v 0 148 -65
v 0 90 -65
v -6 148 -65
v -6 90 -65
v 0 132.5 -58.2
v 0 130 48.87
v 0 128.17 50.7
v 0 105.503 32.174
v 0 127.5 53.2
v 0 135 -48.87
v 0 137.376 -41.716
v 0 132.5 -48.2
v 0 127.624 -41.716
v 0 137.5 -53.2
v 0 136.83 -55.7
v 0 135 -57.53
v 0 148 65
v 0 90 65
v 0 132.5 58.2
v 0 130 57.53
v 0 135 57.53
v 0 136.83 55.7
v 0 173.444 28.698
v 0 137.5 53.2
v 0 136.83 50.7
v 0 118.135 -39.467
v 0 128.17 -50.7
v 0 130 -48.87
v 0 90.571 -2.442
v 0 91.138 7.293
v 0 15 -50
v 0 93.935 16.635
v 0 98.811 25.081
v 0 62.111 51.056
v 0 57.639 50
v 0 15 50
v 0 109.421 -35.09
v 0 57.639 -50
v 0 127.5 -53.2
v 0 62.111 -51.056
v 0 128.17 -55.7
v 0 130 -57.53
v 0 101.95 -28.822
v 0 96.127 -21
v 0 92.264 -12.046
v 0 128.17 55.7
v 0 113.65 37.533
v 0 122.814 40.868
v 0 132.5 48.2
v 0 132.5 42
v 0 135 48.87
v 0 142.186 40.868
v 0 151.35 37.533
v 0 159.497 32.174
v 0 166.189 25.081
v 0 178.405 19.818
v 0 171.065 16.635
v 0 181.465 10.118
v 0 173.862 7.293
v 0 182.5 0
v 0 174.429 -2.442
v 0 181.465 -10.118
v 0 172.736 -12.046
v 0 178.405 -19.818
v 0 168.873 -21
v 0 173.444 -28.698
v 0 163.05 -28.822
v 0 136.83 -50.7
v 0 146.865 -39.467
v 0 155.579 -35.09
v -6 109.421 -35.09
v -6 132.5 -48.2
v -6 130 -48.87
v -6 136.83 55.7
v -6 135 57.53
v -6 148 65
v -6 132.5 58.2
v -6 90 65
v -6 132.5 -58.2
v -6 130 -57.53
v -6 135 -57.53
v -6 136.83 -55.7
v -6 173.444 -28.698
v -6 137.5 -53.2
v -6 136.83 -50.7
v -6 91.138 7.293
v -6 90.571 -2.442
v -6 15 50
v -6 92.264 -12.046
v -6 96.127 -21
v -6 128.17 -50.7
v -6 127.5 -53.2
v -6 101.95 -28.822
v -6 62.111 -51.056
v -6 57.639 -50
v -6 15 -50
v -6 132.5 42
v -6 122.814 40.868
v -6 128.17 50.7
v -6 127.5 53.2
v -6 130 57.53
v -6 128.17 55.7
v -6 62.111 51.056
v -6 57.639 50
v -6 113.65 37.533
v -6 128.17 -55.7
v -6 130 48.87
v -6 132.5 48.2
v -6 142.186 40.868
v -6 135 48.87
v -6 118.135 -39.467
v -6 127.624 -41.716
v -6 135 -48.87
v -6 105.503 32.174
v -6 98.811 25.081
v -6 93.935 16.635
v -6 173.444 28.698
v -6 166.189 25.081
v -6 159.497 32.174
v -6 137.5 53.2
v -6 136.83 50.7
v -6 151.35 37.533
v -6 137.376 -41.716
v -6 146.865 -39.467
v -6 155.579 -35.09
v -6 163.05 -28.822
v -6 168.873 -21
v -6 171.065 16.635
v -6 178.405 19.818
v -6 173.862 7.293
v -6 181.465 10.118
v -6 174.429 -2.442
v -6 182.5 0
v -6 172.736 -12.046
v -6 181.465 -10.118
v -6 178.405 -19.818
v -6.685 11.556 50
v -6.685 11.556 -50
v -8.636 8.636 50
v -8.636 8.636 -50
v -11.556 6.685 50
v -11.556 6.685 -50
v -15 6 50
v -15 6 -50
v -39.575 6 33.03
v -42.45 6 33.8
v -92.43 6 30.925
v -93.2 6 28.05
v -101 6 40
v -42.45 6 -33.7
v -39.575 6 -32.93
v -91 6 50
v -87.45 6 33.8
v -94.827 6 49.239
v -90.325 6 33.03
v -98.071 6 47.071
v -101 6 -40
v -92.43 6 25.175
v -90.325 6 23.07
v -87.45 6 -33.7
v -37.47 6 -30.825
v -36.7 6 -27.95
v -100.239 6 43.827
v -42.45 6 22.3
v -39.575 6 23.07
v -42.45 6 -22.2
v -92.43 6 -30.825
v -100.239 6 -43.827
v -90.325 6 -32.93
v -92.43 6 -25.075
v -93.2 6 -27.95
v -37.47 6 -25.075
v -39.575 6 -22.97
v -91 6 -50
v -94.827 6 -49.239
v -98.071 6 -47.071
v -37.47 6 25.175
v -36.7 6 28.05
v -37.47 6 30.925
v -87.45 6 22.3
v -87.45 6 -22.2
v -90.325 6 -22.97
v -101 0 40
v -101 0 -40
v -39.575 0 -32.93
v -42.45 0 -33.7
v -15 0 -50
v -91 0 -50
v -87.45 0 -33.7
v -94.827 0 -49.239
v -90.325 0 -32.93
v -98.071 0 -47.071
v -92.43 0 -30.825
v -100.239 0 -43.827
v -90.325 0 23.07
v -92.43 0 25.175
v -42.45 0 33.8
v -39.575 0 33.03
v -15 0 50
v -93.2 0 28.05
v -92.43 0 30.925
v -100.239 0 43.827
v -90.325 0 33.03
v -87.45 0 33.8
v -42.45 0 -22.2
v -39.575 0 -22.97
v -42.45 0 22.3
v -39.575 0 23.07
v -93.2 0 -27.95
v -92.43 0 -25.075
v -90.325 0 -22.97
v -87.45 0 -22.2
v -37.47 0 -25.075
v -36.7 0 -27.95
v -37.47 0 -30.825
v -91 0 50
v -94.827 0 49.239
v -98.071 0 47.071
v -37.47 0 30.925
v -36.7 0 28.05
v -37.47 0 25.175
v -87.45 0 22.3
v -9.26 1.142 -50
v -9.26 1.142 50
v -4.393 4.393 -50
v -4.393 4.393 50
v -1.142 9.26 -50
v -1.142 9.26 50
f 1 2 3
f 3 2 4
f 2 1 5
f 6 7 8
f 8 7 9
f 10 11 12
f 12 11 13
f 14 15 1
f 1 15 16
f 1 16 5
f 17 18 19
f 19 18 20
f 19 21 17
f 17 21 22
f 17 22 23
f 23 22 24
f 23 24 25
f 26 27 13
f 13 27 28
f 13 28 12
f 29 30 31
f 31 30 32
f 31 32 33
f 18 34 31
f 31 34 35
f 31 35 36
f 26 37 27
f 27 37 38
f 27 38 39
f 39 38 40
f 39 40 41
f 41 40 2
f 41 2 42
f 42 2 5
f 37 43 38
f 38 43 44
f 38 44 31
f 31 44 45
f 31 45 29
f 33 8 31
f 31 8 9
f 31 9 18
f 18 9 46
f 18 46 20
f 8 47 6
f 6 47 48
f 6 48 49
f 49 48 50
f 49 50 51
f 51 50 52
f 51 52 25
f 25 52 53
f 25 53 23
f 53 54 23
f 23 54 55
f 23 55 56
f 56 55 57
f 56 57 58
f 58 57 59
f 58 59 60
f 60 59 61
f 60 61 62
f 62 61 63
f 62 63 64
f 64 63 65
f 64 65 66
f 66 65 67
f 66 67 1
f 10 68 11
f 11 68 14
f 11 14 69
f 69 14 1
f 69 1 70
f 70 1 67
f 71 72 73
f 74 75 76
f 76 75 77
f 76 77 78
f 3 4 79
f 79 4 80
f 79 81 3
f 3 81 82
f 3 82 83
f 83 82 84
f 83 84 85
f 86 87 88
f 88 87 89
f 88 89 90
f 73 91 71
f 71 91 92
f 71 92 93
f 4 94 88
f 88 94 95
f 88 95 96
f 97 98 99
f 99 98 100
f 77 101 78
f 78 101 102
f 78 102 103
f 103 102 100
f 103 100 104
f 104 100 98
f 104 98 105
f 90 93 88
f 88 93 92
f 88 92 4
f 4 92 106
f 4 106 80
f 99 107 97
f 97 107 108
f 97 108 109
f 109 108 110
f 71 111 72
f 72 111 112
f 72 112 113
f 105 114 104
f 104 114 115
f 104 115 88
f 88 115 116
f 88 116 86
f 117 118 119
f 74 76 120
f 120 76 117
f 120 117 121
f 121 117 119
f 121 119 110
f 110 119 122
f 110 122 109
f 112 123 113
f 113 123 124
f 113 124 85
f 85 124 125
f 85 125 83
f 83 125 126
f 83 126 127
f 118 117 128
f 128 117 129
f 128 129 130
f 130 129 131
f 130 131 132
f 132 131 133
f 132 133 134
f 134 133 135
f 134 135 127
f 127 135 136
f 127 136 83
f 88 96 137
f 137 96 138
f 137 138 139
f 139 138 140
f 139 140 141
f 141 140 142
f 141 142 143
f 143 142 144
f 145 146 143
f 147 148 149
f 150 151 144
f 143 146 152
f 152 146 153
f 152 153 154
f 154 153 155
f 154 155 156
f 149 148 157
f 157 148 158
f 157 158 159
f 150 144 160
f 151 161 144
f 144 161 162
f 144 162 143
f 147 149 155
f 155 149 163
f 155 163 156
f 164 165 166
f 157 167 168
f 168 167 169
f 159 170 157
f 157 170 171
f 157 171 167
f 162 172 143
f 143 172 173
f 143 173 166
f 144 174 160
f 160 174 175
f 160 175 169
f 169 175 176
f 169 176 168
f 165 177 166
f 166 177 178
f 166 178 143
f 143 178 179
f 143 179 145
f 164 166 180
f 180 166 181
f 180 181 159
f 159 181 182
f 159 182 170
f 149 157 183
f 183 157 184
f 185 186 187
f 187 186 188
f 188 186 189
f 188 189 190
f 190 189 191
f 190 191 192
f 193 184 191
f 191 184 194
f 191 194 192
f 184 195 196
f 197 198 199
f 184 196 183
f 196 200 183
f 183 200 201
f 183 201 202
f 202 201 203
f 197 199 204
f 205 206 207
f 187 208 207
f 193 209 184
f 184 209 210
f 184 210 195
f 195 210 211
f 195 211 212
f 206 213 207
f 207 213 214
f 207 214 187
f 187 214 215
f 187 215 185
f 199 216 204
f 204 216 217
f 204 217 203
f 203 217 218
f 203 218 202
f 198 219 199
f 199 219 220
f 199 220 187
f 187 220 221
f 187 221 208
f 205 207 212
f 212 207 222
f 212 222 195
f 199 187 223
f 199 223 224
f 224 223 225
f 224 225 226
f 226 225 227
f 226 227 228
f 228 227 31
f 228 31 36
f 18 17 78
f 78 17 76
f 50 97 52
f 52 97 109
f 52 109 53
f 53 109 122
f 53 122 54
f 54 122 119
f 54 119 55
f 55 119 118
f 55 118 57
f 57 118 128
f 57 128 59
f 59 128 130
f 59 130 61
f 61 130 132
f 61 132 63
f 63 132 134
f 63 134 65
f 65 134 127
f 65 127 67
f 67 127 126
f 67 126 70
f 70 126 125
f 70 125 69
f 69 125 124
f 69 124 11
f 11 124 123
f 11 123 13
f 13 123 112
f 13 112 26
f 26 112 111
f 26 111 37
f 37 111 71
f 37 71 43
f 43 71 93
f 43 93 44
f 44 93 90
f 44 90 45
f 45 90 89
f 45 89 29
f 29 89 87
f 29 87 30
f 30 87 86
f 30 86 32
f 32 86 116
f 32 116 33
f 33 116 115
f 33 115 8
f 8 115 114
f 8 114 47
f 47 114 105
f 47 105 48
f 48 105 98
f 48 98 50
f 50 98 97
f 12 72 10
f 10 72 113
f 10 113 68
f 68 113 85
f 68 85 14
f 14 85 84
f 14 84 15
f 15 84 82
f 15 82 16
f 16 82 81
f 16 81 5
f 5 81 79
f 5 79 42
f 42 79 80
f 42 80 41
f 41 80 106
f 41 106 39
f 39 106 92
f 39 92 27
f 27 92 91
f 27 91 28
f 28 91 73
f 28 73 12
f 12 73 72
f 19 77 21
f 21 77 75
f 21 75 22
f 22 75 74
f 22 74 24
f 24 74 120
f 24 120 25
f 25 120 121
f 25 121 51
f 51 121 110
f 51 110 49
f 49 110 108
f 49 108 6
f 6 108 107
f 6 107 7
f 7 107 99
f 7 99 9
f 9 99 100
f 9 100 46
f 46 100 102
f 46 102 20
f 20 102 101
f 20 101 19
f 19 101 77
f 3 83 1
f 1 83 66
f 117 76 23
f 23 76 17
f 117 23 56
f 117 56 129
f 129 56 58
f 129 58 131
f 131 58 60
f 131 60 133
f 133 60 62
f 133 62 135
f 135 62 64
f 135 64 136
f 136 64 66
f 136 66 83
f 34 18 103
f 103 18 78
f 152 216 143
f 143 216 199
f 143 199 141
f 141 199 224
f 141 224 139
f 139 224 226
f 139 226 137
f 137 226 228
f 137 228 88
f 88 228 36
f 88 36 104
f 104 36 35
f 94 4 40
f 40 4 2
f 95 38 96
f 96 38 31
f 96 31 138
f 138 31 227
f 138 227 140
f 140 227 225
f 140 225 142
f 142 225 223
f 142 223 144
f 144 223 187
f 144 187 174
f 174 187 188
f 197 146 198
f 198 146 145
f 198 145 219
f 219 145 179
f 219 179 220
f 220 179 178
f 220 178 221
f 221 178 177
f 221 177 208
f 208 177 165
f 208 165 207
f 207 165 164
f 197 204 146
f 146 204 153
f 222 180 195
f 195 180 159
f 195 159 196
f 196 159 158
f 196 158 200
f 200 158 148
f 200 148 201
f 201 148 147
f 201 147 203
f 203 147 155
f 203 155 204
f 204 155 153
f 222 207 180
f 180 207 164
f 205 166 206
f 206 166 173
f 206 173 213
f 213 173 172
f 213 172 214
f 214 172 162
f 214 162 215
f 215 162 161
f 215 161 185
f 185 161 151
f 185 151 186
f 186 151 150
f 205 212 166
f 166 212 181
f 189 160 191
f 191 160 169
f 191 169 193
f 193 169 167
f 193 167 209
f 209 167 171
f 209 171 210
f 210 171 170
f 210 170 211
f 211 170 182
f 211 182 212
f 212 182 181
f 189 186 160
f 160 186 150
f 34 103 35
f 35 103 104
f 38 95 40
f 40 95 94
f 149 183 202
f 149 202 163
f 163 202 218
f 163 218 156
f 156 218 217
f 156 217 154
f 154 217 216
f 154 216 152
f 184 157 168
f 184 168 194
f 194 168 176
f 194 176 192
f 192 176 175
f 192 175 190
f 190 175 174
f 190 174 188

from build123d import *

# Parameters (mm, degrees)
BASE_FLANGE1_DEPTH      = 65
SKETCH6_R               = 42
SKETCH6_R_2             = 5
CUT_EXTRUDE1_DEPTH      = 10
CUT_EXTRUDE2_DEPTH      = 219.477115506
CUT_EXTRUDE2_DEPTH_BACK = 219.477115506
SKETCH8_OUTSIDE_W       = 181.156
SKETCH8_OUTSIDE_H       = 233.656
CUT_EXTRUDE3_DEPTH      = 10
BREAK_CORNER1_START     = -6
BREAK_CORNER1_DEPTH     = 6
BREAK_CORNER1_2_DEPTH   = 6


# Read off the part's stored shape, not the designer's step: Break-Corner1
# Sheet-metal steps are written as plain solids
with BuildPart() as part:
    # Sketch1 → Base-Flange1 (new, symmetric)
    with BuildSketch(Plane.XY):
        with BuildLine():
            Line((-101, 0), (-15, 0))
            ThreePointArc((-15, 0), (-4.393398282, 4.393398282), (0, 15))
            Line((0, 15), (0, 182.5))
            Line((0, 182.5), (-6, 182.5))
            Line((-6, 182.5), (-6, 15))
            ThreePointArc((-6, 15), (-8.636038969, 8.636038969), (-15, 6))
            Line((-15, 6), (-101, 6))
            Line((-101, 6), (-101, 0))
        make_face()
    extrude(amount=BASE_FLANGE1_DEPTH, both=True)

    # Sketch6 → Cut-Extrude1 (cut)
    with BuildSketch(Plane.ZY.offset(6)):
        with Locations((0, 132.5)):
            Circle(SKETCH6_R)
        with Locations((-53.2, 132.5)):
            Circle(SKETCH6_R_2)
        with Locations((53.2, 132.5)):
            Circle(SKETCH6_R_2)
    extrude(amount=-CUT_EXTRUDE1_DEPTH, mode=Mode.SUBTRACT)

    # Sketch8 outside → Cut-Extrude2 (cut, two sides: drawn at the far end of the back side and taken through both)
    with BuildSketch(Plane(origin=(0, 0, 0), x_dir=(0, 0, -1), z_dir=(1, 0, 0)).offset(-CUT_EXTRUDE2_DEPTH_BACK)):
        with Locations((0, 91.25)):
            Rectangle(SKETCH8_OUTSIDE_W, SKETCH8_OUTSIDE_H)
        with BuildLine():
            Line((50, 0), (50, 60))
            Line((50, 60), (65, 90))
            Line((65, 90), (65, 148))
            Line((65, 148), (28.697915295, 173.444226183))
            ThreePointArc((28.697915295, 173.444226183), (0, 182.5), (-28.697915295, 173.444226183))
            Line((-28.697915295, 173.444226183), (-65, 148))
            Line((-65, 148), (-65, 90))
            Line((-65, 90), (-50, 60))
            Line((-50, 60), (-50, 0))
            Line((-50, 0), (50, 0))
        make_face(mode=Mode.SUBTRACT)
    extrude(amount=CUT_EXTRUDE2_DEPTH + CUT_EXTRUDE2_DEPTH_BACK, mode=Mode.SUBTRACT)

    # Sketch7 → Cut-Extrude3 (cut)
    with BuildSketch(Plane(origin=(0, 6, 0), x_dir=(1, 0, 0), z_dir=(0, 1, 0))):
        with BuildLine():
            Line((-42.45, 22.2), (-87.45, 22.2))
            ThreePointArc((-87.45, 22.2), (-93.2, 27.95), (-87.45, 33.7))
            Line((-87.45, 33.7), (-42.45, 33.7))
            ThreePointArc((-42.45, 33.7), (-36.7, 27.95), (-42.45, 22.2))
        make_face()
        with BuildLine():
            Line((-42.45, -33.8), (-87.45, -33.8))
            ThreePointArc((-87.45, -33.8), (-93.2, -28.05), (-87.45, -22.3))
            Line((-87.45, -22.3), (-42.45, -22.3))
            ThreePointArc((-42.45, -22.3), (-36.7, -28.05), (-42.45, -33.8))
        make_face()
    extrude(amount=-CUT_EXTRUDE3_DEPTH, mode=Mode.SUBTRACT)

    # Break-Corner1 outline → Break-Corner1 (add)
    with BuildSketch(Plane.YZ.offset(BREAK_CORNER1_START)):
        with BuildLine():
            Line((60, 50), (62.11145618, 51.05572809))
            ThreePointArc((62.11145618, 51.05572809), (59.936849431, 50.267510105), (57.639320225, 50))
            Line((57.639320225, 50), (60, 50))
        make_face()
        with BuildLine():
            Line((60, -50), (57.639320225, -50))
            ThreePointArc((57.639320225, -50), (59.936849431, -50.267510105), (62.11145618, -51.05572809))
            Line((62.11145618, -51.05572809), (60, -50))
        make_face()
    extrude(amount=BREAK_CORNER1_DEPTH)

    # Break-Corner1 2 outline → Break-Corner1 2 (cut)
    with BuildSketch(Plane(origin=(0, 0, 0), x_dir=(1, 0, 0), z_dir=(0, 1, 0))):
        with BuildLine():
            Line((-101, -50), (-91, -50))
            ThreePointArc((-91, -50), (-98.071067812, -47.071067812), (-101, -40))
            Line((-101, -40), (-101, -50))
        make_face()
        with BuildLine():
            Line((-101, 50), (-101, 40))
            ThreePointArc((-101, 40), (-98.071067812, 47.071067812), (-91, 50))
            Line((-91, 50), (-101, 50))
        make_face()
    extrude(amount=BREAK_CORNER1_2_DEPTH, mode=Mode.SUBTRACT)


solid = part.part
